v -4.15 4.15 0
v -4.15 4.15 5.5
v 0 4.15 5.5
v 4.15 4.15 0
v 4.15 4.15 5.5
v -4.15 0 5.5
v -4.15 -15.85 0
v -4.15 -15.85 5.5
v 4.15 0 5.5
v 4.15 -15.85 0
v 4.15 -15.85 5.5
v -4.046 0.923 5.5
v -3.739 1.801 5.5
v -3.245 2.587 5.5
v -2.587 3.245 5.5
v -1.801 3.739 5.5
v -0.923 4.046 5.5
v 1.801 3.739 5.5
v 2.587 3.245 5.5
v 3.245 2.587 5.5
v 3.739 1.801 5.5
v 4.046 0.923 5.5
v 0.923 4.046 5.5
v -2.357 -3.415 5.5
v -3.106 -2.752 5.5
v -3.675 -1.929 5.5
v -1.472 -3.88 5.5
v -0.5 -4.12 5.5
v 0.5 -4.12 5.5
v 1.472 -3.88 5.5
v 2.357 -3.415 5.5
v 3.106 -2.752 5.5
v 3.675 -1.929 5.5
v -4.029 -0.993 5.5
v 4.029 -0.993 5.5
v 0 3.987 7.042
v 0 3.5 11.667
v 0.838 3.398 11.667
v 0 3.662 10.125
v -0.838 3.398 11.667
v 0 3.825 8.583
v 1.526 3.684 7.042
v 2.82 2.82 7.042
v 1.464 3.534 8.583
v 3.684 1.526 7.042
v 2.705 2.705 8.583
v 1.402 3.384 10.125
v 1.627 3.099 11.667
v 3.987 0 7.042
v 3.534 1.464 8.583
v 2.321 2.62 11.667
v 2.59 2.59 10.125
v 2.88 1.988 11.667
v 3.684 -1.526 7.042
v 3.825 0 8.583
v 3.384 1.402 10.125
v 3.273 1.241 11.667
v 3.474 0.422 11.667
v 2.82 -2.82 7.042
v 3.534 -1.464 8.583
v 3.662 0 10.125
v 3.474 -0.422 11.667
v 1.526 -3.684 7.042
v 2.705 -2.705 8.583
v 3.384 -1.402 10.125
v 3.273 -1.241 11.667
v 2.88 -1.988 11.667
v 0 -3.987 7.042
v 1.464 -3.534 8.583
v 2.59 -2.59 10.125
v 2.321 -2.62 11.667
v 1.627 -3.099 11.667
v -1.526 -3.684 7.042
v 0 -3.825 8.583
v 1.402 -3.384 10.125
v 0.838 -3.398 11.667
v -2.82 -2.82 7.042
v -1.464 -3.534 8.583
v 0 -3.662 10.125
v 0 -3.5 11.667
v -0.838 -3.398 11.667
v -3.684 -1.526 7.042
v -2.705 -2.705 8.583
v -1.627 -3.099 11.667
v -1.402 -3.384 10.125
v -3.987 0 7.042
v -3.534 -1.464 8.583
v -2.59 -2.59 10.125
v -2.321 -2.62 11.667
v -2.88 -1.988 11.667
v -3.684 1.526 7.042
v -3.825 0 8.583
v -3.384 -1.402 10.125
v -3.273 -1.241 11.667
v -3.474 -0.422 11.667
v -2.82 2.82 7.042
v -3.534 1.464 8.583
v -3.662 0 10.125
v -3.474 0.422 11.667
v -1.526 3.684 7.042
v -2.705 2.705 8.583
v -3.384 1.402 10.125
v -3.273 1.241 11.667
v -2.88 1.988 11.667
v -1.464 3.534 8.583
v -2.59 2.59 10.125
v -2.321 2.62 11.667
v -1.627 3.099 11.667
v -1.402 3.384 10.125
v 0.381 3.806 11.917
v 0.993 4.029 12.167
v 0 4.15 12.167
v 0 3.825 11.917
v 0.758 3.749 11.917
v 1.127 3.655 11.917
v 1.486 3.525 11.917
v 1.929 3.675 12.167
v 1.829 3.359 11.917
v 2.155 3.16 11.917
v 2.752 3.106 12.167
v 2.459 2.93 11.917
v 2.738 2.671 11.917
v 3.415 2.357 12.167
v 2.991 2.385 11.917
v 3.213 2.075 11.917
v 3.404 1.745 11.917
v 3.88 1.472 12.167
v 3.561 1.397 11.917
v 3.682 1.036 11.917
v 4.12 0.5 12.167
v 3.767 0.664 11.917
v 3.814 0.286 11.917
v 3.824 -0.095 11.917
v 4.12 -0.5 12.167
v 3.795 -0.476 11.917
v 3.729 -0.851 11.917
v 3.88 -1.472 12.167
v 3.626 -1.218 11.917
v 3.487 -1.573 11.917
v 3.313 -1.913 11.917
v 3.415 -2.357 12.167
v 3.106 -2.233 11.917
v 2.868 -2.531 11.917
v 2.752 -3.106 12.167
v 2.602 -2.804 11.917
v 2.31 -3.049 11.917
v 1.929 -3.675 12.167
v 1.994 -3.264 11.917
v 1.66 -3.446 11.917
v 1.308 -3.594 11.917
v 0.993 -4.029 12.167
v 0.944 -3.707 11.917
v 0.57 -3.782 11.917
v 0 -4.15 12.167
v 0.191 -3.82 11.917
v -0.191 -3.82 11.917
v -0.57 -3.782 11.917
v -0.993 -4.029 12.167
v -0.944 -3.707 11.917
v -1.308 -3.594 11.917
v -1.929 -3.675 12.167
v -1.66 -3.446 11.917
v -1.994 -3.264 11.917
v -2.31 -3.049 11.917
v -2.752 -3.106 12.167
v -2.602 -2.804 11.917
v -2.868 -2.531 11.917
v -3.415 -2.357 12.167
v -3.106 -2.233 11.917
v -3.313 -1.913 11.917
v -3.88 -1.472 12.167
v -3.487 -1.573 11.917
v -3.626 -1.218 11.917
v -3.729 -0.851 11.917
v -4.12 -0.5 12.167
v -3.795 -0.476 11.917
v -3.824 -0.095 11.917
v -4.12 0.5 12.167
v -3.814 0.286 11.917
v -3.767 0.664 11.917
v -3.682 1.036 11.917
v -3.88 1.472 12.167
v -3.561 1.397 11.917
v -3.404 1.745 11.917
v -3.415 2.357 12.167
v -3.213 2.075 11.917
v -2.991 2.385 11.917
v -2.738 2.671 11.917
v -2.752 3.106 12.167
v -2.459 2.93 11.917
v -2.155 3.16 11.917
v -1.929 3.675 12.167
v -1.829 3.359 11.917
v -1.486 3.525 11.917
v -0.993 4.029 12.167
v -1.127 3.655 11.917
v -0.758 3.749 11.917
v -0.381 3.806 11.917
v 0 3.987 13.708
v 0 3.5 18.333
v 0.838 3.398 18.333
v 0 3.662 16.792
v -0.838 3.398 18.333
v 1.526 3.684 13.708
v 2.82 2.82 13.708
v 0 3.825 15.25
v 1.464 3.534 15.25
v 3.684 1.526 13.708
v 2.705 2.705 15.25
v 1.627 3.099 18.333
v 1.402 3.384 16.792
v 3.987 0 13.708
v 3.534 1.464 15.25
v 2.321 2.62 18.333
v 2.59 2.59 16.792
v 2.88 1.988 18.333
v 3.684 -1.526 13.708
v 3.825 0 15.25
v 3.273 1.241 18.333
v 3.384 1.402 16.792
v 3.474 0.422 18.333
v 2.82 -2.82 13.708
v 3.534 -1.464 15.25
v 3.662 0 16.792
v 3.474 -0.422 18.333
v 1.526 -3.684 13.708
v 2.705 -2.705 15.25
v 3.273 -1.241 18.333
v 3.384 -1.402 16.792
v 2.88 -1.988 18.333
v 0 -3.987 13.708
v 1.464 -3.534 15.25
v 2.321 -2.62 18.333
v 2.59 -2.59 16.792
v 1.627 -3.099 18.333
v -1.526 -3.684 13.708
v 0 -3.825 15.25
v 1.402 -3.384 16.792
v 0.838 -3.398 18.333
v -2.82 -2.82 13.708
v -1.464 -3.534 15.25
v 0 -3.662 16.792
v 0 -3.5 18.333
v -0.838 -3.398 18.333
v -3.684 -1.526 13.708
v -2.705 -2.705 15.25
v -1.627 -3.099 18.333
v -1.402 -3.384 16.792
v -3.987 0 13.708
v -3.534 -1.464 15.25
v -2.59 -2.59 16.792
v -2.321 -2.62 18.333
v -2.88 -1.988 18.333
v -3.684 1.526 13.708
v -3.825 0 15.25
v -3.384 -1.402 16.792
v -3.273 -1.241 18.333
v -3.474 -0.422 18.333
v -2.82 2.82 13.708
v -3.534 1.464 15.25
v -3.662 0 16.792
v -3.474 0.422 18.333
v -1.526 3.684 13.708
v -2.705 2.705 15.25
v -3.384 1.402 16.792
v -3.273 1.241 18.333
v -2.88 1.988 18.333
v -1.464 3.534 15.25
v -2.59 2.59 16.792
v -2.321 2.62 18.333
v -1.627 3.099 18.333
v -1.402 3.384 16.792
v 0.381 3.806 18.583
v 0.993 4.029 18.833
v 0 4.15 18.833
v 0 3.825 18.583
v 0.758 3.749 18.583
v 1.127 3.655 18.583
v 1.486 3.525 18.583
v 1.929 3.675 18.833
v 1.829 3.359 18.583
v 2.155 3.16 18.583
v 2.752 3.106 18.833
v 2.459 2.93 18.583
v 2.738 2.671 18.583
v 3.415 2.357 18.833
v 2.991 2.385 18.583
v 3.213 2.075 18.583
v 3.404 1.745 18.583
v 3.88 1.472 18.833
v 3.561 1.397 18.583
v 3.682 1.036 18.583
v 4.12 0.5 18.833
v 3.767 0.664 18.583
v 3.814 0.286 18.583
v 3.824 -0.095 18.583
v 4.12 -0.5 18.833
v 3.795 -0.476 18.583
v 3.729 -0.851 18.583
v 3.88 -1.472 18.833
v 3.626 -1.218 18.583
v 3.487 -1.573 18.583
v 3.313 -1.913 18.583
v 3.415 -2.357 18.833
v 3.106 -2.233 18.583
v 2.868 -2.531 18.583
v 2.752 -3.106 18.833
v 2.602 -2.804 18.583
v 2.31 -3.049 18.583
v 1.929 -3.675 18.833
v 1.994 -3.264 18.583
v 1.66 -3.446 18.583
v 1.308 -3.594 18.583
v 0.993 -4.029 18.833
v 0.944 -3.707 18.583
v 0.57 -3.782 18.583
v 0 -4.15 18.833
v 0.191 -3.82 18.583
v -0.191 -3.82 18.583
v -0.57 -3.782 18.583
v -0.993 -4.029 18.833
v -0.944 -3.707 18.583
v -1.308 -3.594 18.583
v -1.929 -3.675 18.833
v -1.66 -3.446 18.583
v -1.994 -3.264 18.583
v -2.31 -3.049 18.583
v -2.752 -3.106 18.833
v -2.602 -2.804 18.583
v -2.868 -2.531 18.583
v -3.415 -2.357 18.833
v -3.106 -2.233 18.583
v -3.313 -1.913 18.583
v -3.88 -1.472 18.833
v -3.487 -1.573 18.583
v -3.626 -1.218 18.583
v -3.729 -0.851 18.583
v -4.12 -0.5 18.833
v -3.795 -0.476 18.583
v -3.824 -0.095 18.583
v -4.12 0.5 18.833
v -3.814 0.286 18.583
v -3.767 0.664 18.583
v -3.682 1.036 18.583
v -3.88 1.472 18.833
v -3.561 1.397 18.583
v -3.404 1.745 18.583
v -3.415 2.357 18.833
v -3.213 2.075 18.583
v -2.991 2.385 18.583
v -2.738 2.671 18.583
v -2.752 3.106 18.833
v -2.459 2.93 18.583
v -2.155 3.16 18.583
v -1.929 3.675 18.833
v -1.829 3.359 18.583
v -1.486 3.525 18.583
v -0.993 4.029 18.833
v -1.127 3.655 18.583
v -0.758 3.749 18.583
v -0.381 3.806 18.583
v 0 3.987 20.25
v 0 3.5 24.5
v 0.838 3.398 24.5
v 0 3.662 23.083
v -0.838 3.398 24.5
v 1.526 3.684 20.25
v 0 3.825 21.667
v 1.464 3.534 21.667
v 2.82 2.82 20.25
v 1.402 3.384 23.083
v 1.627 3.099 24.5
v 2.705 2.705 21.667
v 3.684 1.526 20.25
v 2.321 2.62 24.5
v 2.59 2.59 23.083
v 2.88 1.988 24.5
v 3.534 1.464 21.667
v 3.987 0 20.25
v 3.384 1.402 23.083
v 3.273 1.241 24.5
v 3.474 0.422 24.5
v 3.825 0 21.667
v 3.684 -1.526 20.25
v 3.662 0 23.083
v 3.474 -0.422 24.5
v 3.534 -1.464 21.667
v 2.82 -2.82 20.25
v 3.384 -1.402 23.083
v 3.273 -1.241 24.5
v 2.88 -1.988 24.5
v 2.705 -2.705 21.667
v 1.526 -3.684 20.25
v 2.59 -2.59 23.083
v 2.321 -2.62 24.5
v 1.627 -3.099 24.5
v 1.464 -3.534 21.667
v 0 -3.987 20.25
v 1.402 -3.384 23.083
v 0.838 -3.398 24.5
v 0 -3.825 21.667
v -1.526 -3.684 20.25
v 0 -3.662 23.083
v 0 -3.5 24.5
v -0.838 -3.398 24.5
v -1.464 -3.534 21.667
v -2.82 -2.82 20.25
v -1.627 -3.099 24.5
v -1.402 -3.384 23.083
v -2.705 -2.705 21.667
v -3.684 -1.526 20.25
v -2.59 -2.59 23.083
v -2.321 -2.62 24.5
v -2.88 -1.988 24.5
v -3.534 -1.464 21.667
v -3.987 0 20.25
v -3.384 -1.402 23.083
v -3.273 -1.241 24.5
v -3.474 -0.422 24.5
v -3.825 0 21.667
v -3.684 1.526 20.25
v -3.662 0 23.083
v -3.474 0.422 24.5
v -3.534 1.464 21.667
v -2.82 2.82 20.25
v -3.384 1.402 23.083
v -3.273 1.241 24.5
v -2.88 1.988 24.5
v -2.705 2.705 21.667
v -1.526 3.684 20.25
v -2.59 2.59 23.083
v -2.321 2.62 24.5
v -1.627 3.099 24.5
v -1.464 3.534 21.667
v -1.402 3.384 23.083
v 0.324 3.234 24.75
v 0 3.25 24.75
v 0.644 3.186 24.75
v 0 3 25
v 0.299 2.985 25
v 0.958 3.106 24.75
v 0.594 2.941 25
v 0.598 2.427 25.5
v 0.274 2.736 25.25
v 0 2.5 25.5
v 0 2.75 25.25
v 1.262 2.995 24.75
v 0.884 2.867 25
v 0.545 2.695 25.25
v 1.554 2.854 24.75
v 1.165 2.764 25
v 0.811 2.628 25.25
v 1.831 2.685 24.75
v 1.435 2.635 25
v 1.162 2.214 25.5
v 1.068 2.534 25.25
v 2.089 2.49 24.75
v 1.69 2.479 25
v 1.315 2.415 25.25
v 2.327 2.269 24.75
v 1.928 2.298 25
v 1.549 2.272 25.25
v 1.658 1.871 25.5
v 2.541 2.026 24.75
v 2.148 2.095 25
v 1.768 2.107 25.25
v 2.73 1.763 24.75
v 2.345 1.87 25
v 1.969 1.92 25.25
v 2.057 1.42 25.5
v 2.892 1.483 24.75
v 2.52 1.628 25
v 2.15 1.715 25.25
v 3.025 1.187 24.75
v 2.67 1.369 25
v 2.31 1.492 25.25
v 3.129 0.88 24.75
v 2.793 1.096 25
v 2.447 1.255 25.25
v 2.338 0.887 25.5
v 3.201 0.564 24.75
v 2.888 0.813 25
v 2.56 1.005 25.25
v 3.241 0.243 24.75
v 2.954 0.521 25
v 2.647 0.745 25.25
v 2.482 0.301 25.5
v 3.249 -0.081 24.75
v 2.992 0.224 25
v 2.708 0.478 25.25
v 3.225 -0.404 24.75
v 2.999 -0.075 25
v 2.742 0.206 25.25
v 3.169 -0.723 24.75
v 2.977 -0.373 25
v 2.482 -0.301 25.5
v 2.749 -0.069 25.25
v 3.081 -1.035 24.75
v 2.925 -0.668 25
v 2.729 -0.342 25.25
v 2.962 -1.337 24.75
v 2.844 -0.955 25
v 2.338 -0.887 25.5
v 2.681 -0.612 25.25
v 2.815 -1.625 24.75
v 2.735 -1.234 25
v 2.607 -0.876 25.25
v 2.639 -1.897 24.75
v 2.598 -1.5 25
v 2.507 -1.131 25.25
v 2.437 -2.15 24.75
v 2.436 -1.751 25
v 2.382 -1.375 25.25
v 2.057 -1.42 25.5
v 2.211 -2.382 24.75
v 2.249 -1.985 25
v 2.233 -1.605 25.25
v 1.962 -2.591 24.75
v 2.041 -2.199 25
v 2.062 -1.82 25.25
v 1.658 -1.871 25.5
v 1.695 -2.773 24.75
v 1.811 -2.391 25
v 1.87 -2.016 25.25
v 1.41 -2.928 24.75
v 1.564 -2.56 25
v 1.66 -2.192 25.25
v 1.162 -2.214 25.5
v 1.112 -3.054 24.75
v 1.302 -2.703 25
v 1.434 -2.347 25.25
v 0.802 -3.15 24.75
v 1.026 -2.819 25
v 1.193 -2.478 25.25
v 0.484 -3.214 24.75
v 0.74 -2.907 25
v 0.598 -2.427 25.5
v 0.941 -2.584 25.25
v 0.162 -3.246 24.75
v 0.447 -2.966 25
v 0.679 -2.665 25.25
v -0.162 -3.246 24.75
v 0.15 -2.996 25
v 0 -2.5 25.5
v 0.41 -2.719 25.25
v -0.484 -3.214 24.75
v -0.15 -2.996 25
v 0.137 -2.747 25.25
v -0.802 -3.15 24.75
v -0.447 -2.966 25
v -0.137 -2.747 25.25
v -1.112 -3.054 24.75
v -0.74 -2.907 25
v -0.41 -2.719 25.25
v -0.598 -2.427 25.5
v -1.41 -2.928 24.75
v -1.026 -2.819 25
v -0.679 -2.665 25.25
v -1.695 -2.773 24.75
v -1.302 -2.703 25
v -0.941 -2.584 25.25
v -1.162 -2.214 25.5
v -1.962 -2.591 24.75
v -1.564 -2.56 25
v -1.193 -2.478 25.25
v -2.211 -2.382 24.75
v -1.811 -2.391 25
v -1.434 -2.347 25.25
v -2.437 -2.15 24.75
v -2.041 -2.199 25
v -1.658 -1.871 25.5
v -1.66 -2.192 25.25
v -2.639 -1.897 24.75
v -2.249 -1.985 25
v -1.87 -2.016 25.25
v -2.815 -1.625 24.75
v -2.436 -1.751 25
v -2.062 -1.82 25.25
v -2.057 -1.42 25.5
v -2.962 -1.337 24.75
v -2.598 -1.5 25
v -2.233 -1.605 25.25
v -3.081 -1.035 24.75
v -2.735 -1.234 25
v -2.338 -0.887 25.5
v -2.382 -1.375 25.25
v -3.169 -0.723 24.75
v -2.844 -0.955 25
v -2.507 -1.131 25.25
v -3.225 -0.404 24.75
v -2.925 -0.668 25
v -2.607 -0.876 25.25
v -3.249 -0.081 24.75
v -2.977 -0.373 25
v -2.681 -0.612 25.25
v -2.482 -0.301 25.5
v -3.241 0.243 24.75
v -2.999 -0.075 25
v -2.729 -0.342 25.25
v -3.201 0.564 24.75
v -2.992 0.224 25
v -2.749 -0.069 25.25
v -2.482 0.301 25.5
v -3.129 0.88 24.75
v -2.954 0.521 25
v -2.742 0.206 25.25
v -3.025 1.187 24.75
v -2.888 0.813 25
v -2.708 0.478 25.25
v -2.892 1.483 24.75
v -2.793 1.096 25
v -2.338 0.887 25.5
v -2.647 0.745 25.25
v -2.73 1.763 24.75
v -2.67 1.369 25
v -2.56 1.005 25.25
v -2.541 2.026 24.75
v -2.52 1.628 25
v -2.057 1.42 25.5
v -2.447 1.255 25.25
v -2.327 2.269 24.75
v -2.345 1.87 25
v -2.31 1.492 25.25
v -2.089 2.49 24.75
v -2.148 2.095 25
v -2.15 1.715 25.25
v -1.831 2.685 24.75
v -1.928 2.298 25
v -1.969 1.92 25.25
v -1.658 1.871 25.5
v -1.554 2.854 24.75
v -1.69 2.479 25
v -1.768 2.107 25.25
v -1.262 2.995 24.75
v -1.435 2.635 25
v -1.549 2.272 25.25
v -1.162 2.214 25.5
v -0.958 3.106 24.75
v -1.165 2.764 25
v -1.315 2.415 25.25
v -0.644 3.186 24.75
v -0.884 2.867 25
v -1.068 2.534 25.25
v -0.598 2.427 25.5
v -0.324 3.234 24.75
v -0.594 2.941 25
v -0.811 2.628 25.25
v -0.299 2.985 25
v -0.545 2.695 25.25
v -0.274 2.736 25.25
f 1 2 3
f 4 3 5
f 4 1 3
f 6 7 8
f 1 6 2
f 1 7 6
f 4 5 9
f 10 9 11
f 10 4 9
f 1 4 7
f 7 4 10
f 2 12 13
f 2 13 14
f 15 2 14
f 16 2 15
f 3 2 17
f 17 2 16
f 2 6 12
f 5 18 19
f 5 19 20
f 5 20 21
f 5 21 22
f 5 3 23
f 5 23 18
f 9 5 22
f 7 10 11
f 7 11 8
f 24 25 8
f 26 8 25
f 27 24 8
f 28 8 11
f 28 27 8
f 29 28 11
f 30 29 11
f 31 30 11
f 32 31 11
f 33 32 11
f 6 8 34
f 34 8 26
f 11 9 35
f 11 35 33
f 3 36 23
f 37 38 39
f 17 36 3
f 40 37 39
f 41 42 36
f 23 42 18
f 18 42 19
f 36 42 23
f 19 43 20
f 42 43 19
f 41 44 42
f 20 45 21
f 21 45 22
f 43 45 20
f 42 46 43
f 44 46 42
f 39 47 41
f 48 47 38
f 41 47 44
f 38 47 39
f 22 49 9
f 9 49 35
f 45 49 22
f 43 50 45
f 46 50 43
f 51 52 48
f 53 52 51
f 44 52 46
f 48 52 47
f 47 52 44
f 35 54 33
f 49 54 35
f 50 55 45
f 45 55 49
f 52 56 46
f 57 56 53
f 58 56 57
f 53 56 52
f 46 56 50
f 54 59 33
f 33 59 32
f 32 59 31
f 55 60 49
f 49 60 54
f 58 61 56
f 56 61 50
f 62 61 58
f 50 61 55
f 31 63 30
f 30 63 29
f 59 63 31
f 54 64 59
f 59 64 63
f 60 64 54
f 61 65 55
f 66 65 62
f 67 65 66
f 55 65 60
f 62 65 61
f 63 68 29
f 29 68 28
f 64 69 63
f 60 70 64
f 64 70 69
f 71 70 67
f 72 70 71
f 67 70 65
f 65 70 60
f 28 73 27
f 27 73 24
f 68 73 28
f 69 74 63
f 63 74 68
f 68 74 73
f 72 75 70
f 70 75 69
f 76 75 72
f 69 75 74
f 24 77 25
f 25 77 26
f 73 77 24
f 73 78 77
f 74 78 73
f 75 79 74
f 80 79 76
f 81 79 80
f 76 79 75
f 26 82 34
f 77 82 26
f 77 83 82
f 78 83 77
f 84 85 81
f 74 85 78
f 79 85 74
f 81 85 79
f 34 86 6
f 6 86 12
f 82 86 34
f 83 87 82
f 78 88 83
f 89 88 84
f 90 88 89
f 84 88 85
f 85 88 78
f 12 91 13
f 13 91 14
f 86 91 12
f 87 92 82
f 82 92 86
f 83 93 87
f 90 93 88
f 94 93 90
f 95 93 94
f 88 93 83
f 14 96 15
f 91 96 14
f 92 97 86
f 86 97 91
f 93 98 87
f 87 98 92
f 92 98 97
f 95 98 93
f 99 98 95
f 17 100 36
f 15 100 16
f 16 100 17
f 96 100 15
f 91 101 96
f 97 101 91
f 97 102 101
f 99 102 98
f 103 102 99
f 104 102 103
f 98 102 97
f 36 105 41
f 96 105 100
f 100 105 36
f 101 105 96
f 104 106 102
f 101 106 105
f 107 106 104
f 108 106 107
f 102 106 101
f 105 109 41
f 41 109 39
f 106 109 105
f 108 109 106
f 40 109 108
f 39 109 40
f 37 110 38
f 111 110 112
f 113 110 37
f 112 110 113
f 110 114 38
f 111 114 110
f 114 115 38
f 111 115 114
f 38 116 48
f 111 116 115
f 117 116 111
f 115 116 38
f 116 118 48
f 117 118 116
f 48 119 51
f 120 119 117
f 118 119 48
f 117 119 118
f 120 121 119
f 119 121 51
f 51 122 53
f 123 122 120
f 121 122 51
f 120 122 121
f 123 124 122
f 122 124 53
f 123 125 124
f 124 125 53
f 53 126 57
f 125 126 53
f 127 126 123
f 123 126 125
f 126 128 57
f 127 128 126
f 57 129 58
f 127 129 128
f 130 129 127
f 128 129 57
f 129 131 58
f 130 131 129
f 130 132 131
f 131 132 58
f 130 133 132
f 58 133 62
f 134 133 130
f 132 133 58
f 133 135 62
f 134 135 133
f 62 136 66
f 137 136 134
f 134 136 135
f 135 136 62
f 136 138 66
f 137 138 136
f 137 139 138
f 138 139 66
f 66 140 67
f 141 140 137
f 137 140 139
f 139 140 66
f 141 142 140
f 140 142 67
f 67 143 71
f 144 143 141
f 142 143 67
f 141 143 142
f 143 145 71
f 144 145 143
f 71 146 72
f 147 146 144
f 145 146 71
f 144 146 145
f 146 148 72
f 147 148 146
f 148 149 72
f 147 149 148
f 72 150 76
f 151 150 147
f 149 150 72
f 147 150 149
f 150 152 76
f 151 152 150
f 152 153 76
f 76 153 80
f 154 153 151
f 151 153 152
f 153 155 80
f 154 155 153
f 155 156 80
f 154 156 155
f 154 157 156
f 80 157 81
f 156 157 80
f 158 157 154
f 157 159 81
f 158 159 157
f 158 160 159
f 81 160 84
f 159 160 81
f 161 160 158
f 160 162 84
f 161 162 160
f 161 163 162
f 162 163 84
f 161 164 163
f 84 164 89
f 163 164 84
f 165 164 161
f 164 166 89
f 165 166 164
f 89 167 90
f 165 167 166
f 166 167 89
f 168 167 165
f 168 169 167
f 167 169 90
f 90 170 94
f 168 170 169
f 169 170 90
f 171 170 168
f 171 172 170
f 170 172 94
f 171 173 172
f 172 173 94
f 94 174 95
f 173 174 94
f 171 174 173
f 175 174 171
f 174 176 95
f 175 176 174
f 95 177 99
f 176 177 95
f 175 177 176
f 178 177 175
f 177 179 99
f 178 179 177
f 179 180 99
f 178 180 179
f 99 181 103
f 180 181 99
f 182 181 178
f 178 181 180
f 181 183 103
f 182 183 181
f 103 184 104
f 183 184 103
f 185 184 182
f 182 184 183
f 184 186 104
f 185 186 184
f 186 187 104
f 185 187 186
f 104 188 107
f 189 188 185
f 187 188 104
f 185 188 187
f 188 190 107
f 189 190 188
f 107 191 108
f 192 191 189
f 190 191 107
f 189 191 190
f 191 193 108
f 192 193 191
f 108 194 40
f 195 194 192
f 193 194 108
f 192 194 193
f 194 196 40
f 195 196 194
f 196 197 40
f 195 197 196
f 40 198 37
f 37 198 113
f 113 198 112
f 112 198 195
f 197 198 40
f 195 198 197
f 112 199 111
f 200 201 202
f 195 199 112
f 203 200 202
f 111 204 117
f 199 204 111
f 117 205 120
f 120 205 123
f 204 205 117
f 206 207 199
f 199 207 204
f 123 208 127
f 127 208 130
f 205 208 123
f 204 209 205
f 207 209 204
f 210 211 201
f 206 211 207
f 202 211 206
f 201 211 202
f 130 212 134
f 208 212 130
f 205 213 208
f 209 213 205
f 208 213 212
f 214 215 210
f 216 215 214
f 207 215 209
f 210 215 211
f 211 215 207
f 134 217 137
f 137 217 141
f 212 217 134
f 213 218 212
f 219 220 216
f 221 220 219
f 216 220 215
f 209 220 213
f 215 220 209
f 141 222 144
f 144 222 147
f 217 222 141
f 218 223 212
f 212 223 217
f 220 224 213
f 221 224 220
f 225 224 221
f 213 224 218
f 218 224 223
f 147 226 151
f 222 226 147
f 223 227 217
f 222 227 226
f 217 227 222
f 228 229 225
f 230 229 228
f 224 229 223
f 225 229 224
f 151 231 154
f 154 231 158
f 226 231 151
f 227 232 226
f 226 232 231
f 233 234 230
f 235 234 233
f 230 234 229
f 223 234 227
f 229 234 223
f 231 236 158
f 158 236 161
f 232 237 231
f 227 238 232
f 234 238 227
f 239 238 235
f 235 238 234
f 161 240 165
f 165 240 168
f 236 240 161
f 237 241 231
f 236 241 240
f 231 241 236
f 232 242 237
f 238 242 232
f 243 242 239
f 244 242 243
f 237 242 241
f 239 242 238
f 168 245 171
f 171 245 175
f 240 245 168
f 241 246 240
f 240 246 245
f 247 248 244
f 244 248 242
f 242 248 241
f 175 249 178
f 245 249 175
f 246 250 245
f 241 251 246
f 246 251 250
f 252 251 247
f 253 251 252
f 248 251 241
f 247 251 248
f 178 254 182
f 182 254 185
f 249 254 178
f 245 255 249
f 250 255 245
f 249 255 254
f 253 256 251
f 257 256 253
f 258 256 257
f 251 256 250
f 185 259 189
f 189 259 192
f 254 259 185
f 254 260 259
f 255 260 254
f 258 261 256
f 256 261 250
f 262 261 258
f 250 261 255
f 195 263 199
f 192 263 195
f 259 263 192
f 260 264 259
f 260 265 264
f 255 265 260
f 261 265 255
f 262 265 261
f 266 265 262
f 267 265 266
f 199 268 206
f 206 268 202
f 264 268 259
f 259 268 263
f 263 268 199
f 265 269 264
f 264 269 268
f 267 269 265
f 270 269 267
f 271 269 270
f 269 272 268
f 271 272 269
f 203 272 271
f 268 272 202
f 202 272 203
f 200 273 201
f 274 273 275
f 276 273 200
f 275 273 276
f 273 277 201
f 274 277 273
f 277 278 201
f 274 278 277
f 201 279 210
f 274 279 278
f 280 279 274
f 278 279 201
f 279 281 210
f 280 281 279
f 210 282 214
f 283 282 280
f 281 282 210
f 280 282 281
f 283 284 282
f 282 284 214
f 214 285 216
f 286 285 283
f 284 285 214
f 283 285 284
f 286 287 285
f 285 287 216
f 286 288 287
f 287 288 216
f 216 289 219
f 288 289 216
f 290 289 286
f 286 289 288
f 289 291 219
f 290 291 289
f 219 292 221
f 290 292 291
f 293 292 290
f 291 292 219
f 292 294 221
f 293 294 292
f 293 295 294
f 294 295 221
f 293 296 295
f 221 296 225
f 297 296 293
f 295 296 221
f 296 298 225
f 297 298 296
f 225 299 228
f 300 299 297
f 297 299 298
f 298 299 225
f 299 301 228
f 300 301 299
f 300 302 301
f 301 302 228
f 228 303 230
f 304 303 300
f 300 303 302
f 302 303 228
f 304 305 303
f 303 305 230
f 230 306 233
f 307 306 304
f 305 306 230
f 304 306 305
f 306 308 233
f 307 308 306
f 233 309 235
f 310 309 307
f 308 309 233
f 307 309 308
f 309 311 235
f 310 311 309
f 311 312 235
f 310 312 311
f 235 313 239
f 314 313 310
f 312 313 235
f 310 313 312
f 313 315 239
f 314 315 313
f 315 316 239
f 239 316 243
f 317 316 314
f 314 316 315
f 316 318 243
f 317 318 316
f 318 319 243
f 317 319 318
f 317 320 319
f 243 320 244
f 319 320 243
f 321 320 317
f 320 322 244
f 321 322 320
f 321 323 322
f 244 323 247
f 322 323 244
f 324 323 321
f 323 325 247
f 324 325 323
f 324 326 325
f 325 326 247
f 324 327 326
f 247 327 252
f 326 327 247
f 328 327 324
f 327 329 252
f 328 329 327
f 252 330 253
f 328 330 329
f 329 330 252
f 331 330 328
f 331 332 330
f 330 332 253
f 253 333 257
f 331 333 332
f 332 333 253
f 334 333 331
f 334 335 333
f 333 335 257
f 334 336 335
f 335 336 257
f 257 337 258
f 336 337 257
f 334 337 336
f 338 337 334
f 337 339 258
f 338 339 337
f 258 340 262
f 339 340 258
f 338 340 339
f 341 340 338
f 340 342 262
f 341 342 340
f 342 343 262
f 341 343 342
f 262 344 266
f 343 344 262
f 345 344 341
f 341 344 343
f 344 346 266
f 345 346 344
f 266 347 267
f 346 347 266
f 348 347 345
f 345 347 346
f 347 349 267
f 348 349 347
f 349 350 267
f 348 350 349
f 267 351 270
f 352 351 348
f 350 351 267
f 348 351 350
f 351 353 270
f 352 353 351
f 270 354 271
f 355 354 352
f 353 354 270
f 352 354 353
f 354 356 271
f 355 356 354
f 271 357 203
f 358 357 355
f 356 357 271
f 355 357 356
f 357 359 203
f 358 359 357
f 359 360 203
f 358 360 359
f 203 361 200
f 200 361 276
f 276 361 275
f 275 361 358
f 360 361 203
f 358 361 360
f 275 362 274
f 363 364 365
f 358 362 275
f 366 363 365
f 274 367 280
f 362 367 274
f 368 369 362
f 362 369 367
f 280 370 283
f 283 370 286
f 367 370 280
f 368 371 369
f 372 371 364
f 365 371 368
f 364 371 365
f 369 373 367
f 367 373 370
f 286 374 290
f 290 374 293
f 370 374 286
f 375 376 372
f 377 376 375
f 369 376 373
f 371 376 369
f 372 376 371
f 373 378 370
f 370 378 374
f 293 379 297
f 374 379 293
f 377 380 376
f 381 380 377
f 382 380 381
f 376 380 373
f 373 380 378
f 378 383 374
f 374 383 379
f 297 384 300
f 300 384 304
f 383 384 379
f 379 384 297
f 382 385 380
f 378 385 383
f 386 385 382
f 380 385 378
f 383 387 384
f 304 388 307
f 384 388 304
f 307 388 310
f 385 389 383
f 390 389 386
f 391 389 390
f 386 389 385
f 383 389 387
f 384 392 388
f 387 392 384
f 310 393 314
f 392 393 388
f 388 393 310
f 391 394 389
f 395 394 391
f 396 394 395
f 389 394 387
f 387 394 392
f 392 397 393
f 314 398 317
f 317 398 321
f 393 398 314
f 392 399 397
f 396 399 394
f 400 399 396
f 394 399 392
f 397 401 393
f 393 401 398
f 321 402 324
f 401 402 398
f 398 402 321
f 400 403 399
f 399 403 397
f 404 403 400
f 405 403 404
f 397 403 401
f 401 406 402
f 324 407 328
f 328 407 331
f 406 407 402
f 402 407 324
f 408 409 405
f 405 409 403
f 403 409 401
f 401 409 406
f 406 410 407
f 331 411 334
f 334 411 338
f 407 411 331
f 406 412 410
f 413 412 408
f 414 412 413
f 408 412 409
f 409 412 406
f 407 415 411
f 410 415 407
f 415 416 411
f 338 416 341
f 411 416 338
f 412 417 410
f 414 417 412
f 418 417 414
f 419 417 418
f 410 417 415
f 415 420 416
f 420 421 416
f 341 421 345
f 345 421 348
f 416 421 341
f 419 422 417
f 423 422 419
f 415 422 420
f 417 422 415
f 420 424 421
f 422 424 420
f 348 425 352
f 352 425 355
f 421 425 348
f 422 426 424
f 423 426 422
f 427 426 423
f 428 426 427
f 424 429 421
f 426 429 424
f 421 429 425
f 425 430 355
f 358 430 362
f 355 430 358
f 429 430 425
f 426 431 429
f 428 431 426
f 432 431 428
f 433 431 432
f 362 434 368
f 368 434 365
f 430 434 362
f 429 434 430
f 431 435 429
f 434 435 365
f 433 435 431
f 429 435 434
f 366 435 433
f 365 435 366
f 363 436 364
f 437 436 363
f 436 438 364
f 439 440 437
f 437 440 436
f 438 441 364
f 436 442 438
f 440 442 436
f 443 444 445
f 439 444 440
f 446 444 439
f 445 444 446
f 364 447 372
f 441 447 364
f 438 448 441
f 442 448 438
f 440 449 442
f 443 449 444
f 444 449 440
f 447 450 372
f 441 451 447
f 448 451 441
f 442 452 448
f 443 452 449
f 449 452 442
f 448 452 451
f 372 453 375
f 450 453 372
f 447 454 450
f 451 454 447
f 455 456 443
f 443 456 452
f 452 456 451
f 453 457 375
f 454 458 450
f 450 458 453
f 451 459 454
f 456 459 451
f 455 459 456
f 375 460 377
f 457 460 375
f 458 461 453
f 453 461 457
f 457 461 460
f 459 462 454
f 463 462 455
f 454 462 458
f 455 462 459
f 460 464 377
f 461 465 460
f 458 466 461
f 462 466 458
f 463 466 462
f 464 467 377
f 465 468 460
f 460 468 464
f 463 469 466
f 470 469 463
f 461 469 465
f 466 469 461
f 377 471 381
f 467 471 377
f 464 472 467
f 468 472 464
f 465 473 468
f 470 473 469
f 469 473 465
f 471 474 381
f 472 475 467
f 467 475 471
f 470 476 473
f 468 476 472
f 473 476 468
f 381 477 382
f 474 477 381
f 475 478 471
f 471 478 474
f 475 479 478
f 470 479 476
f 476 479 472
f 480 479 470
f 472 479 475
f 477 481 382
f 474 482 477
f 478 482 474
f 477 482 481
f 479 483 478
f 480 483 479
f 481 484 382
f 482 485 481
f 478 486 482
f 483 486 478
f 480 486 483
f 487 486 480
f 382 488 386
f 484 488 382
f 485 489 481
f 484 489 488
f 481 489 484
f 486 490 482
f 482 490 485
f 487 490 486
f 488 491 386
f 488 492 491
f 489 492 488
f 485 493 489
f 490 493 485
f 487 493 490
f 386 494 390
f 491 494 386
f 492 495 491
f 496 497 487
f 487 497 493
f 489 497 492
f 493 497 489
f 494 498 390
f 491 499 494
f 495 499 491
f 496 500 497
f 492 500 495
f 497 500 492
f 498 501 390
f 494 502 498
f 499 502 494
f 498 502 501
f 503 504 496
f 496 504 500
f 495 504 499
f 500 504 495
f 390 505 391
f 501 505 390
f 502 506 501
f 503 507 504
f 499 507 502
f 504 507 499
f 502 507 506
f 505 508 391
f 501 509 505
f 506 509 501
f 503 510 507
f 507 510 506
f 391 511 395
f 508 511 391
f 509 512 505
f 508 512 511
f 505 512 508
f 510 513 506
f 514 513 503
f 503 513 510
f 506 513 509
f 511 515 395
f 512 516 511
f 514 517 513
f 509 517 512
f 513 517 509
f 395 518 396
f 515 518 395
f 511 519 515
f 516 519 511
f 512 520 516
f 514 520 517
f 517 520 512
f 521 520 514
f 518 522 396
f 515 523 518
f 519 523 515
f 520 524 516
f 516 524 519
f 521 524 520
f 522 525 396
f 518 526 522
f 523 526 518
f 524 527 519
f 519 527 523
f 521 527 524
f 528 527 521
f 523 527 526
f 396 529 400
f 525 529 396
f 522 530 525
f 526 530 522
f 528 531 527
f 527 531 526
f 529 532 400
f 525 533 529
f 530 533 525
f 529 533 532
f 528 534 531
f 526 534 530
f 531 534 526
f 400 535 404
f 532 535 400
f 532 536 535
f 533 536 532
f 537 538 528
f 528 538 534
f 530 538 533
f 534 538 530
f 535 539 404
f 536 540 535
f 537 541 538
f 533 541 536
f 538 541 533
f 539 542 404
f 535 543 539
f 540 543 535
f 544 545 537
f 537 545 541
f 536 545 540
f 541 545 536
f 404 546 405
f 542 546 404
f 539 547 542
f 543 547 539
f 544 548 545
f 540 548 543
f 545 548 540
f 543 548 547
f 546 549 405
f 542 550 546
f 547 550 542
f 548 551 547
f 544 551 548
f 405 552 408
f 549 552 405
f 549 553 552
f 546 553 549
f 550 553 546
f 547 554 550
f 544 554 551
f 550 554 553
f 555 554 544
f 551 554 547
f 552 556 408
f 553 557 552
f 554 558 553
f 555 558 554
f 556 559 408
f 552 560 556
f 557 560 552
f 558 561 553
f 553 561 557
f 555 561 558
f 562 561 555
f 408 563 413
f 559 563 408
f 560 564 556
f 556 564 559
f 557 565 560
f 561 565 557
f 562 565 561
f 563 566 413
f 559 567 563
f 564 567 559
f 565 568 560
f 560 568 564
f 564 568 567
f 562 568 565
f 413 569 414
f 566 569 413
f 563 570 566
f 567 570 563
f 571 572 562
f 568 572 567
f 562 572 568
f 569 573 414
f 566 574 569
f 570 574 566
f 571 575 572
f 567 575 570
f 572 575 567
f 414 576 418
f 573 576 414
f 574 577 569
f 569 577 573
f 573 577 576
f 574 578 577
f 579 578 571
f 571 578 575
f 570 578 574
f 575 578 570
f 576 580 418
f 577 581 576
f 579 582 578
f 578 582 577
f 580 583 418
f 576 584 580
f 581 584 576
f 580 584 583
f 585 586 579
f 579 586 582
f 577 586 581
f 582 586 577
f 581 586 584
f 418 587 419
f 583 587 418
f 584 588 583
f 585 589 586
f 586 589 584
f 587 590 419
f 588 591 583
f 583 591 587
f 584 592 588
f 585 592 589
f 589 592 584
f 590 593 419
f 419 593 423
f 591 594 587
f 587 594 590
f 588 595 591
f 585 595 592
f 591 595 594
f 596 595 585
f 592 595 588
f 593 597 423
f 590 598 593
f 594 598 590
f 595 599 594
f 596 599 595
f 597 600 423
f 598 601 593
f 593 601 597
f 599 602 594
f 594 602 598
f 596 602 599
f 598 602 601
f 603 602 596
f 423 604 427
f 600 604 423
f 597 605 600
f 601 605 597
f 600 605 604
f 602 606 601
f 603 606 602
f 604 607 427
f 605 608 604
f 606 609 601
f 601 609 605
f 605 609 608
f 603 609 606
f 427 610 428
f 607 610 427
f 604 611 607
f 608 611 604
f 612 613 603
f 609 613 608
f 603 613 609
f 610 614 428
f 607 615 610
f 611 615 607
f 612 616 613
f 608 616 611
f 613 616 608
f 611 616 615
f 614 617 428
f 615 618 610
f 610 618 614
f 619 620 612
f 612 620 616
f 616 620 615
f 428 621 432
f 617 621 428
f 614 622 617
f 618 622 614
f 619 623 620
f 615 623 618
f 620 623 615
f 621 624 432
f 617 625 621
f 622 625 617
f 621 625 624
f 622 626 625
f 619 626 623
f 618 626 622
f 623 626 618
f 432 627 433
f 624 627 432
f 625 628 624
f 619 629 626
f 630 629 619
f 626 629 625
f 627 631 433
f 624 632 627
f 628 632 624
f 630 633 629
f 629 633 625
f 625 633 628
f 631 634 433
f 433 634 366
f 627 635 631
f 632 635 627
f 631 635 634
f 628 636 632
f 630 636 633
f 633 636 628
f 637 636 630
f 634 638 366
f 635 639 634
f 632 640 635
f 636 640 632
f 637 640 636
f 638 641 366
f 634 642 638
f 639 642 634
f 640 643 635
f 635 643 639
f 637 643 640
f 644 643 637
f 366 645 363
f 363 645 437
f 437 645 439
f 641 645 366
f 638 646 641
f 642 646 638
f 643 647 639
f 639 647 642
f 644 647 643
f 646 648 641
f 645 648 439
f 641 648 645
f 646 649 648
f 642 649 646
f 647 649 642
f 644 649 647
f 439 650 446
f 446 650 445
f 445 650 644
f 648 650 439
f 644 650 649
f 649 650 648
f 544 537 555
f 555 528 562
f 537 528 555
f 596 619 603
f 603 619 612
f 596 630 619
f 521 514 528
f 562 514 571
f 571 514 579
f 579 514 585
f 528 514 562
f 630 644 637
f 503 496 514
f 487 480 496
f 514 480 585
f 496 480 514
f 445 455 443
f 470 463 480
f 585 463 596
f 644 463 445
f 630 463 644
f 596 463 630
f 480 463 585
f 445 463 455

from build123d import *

# Parameters (mm, degrees)
SKETCH002_W = 8.3
SKETCH002_H = 20
PAD_DEPTH   = 5.5


with BuildPart() as part:
    # Sketch002 → Pad (new body)
    with BuildSketch(Plane.XY):
        with Locations((0, -5.85)):
            Rectangle(SKETCH002_W, SKETCH002_H)
    extrude(amount=PAD_DEPTH)

    # Sketch003 → Revolution (revolve)
    with BuildSketch(Plane.YZ):
        Polygon((0, 5.5), (4.15, 5.5), (3.5, 11.666667), (4.15, 12.166667), (3.5, 18.333334), (4.15, 18.833334), (3.5, 24.500001), (2.5, 25.500001), (0, 25.500001), align=None)
    revolve(axis=Axis((0, 0, 0), (0, 0, 1)))


solid = part.part
